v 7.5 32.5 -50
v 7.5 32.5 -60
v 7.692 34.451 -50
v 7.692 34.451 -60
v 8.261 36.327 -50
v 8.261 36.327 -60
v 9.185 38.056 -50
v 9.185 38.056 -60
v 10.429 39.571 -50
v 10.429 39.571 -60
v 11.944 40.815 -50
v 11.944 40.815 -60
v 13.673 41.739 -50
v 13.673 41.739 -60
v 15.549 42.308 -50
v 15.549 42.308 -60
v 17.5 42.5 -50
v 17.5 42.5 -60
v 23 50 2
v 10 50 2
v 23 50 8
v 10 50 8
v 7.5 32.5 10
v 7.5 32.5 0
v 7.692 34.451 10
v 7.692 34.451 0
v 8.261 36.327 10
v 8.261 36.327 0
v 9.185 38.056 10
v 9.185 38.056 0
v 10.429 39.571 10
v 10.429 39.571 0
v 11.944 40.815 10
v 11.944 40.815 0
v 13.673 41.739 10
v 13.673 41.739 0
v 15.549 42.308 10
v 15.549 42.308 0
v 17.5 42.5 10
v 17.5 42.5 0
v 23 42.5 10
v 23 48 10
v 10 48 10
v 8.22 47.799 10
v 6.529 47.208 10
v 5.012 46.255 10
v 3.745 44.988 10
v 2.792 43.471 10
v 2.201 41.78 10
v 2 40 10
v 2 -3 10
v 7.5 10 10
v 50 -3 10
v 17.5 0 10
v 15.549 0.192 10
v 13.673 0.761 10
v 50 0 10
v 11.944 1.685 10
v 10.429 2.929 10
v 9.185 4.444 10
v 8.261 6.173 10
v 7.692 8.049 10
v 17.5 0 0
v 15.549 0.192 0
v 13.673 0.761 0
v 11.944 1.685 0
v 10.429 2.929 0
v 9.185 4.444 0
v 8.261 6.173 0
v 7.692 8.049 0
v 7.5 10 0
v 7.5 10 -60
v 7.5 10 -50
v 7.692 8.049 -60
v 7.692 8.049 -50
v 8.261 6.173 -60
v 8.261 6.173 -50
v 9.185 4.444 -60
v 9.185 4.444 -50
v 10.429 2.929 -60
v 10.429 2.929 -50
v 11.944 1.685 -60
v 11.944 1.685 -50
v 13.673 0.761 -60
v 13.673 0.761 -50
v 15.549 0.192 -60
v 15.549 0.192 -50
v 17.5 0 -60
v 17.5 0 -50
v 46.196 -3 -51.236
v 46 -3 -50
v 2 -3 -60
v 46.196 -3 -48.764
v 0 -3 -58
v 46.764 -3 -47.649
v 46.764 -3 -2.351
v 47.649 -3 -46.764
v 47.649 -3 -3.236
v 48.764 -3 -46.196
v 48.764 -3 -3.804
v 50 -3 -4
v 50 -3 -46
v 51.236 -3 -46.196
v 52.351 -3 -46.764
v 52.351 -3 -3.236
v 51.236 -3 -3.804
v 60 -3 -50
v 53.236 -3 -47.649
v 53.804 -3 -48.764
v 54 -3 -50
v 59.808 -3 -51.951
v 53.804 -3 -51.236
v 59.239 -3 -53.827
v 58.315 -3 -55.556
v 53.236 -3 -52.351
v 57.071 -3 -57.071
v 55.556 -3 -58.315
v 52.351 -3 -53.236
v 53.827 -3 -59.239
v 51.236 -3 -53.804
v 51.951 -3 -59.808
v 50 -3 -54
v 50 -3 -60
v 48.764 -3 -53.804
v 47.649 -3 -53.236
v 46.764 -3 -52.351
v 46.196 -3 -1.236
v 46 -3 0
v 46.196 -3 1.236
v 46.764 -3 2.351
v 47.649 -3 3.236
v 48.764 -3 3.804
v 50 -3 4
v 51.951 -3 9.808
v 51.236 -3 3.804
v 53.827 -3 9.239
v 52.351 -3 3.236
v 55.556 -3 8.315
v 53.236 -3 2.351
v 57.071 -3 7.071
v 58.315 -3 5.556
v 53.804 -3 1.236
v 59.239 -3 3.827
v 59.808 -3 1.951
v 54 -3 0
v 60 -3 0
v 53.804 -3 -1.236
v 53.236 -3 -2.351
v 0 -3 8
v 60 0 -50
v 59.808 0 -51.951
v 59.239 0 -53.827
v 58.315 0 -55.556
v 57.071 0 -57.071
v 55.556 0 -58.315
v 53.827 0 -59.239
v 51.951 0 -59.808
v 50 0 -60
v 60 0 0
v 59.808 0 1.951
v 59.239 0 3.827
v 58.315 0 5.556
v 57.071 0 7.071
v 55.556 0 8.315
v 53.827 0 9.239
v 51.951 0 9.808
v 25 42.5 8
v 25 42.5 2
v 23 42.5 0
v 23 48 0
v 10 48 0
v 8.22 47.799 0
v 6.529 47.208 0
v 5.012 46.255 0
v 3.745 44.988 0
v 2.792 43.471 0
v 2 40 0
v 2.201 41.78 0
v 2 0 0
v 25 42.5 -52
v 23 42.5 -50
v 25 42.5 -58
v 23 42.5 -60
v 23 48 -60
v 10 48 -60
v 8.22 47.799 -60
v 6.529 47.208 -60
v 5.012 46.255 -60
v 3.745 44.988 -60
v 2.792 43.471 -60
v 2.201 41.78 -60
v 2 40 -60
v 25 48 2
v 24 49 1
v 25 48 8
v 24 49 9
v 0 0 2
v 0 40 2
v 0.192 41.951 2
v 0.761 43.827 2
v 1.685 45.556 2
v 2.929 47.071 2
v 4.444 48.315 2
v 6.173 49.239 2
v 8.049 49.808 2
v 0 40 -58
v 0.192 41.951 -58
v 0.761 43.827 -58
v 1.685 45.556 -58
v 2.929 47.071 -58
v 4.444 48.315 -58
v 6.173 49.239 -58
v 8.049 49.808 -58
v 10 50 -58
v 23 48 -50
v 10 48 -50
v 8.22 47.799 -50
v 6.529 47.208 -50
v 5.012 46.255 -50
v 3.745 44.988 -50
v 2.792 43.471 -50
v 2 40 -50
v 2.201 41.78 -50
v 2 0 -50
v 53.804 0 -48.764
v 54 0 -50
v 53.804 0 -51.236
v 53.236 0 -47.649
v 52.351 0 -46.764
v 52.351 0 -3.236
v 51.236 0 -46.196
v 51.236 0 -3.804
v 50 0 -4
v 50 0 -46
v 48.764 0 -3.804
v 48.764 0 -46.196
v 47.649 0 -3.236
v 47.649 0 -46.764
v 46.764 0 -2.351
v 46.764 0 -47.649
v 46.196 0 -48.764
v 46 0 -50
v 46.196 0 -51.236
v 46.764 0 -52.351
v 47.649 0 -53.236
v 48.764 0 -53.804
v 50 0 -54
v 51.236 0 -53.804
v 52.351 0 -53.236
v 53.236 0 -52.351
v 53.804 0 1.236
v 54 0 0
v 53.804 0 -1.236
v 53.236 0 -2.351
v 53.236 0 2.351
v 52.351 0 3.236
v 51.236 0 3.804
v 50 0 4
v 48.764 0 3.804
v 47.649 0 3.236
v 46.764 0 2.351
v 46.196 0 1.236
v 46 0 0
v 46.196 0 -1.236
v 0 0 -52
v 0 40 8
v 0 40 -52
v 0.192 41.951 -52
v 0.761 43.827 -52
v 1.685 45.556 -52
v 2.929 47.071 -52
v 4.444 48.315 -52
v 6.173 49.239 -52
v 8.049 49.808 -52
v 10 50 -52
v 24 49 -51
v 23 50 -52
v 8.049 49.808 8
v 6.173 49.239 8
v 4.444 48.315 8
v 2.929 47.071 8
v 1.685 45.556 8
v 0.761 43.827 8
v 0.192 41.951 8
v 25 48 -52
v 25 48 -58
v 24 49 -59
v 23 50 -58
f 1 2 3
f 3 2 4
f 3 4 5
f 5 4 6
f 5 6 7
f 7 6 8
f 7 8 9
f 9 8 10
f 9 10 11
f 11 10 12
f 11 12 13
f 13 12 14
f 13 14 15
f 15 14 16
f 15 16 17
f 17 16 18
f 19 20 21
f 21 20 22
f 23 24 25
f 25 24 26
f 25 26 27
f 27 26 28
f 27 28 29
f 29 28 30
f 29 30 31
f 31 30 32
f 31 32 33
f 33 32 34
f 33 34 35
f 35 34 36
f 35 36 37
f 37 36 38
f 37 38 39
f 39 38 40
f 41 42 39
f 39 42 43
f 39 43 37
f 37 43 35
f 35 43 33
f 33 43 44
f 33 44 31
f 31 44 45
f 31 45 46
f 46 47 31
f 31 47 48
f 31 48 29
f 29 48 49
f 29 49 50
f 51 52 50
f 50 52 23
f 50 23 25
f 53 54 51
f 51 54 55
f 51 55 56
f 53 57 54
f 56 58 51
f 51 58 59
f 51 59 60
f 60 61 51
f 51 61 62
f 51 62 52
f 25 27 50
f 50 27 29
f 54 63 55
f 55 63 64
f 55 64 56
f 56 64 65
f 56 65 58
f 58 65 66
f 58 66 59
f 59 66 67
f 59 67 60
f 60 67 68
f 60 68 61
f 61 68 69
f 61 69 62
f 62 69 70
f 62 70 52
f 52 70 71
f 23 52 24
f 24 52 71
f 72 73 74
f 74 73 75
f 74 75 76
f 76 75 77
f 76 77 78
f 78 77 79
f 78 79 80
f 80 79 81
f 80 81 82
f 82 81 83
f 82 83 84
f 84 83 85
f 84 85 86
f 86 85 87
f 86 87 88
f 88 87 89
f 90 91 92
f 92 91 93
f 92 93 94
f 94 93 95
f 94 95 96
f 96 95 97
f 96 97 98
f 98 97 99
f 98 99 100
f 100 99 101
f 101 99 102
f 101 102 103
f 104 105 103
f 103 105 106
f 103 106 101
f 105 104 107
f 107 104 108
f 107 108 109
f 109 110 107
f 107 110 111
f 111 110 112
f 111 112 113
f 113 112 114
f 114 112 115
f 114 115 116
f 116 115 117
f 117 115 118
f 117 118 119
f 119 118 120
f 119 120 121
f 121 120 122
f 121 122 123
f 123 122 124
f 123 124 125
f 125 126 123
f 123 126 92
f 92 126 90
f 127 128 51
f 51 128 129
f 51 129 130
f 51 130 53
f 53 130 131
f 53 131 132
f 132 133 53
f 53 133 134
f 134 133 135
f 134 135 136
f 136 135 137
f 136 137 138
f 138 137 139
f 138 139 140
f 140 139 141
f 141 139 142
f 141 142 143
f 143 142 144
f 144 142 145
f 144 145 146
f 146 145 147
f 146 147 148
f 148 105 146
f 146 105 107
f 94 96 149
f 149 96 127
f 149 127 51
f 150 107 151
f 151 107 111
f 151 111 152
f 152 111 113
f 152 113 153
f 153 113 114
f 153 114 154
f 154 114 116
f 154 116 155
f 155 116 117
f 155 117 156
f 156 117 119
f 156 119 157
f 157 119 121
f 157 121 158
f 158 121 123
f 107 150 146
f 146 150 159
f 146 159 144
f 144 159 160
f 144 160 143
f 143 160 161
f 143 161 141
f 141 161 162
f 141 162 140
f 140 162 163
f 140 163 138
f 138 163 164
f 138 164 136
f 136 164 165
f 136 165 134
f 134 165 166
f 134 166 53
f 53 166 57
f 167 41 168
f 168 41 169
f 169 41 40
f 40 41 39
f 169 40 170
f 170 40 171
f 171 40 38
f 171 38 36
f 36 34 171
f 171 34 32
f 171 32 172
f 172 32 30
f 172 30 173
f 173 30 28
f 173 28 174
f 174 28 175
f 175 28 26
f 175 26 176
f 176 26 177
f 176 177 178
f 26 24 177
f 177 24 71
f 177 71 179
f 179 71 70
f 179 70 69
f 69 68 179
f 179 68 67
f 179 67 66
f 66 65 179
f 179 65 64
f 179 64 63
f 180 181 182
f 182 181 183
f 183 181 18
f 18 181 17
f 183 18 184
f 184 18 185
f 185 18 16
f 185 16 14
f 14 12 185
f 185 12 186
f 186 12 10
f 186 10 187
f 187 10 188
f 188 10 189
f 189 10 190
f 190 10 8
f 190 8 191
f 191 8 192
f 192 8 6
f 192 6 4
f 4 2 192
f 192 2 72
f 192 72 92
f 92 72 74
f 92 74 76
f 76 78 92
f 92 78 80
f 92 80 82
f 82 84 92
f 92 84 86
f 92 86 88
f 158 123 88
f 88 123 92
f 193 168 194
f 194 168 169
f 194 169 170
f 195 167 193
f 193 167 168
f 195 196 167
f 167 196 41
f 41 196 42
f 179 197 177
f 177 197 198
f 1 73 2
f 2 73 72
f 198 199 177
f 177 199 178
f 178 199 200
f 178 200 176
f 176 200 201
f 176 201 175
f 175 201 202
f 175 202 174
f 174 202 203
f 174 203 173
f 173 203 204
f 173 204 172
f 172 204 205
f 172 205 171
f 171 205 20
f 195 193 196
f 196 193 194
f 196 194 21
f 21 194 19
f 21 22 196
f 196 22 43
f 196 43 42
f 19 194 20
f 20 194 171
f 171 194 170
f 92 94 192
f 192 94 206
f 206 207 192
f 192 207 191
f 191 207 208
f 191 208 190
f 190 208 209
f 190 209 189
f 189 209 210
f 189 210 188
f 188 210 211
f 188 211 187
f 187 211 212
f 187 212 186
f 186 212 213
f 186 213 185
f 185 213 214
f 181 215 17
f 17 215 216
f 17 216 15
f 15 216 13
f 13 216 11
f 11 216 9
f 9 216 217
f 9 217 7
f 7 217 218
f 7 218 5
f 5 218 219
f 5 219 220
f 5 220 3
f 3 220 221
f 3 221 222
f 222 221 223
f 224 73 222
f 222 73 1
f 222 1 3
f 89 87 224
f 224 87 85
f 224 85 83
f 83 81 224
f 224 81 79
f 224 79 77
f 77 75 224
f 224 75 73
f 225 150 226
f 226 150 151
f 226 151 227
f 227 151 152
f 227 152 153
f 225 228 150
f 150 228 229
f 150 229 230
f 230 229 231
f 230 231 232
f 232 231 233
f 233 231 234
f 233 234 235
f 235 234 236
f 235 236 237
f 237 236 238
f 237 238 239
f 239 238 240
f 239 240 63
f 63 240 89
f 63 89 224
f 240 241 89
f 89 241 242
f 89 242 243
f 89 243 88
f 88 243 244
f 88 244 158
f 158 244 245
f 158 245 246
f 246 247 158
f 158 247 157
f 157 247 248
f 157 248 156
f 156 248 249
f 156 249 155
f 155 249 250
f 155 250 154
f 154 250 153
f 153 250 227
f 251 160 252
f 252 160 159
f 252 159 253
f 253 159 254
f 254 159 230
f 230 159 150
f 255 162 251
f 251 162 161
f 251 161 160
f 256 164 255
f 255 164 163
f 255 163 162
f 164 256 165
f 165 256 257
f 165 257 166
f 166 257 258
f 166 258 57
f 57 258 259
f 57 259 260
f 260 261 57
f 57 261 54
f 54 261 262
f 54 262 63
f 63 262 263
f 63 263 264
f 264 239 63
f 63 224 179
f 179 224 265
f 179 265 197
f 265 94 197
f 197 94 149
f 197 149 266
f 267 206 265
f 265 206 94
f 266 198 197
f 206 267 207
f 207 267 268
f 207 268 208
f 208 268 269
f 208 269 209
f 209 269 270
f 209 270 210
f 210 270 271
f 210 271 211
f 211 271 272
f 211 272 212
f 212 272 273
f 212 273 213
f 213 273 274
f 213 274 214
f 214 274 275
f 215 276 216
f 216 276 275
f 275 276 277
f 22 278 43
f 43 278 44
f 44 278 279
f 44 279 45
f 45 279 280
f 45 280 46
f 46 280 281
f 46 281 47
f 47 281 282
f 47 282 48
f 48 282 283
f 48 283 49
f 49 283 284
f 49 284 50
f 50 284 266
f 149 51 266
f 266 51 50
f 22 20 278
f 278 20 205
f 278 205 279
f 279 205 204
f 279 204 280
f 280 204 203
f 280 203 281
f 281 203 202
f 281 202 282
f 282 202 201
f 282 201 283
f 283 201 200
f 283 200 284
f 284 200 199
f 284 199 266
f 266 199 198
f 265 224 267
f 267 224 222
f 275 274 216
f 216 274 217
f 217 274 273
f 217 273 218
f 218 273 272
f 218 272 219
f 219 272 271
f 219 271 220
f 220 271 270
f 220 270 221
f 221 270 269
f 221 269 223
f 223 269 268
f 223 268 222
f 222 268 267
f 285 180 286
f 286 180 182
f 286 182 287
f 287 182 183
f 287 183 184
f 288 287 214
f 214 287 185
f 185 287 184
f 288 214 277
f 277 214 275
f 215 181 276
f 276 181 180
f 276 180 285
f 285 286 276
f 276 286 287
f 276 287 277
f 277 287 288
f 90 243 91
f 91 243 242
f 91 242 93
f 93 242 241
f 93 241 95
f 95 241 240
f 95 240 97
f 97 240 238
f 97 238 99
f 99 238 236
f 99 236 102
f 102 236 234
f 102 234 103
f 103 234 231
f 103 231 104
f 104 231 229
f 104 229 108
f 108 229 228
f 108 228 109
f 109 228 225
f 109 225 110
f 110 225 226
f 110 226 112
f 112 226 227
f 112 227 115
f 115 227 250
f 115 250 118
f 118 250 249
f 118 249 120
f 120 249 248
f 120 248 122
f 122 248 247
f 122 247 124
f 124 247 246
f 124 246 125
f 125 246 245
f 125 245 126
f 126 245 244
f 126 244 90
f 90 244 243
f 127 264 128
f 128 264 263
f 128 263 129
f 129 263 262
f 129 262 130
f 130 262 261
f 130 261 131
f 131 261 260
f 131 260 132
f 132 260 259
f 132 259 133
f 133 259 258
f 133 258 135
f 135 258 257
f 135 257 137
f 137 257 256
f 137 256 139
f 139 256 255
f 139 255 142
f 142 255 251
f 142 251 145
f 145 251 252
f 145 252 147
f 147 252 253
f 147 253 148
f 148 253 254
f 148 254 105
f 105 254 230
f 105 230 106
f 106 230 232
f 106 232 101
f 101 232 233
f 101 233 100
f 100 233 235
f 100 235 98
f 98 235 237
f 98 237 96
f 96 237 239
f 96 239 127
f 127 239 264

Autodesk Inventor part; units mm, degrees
ref_plane "YZ Plane" through (0, 0, 0) normal (1, 0, 0) x (0, 1, 0)
ref_plane "XZ Plane" through (0, 0, 0) normal (0, 1, 0) x (-1, 0, 0)
ref_plane "XY Plane" through (0, 0, 0) normal (0, 0, 1) x (1, 0, 0)
sketch "Sketch1" plane through (0, 0, 0) normal (0, 0, 1) x (1, 0, 0)
  line L0 (0, 0) -> (0, 50)
  line L1 (0, 50) -> (25, 50)
  line L2 (25, 50) -> (25, 42.5)
  line L3 (25, 42.5) -> (7.5, 42.5)
  line L4 (7.5, 42.5) -> (7.5, 0)
  line L5 (7.5, 0) -> (0, 0)
  line L6 (0, 0) -> (-20, 0)
  line L7 (-20, 0) -> (-20, -3)
  line L8 (-20, -3) -> (60, -3)
  line L9 (60, -3) -> (60, 0)
  line L10 (60, 0) -> (7.5, 0)
  line L11 (0, 0) -> (0, -3)
  dimension "d0" = 50
  dimension "d1" = 25
  dimension "d2" = 7.5
  dimension "d3" = 17.5
  dimension "d4" = 20
  dimension "d5" = 3
  dimension "d6" = 80
extrude "Extrusion1" add sketch "Sketch1" along normal blind 10 contours L5 L10 L9 L8 L11
extrude "Extrusion2" add sketch "Sketch1" along normal blind 10 contours L0 L1 L2 L3 L4 L5
extrude "Extrusion3" add sketch "Sketch1" against normal blind 60 contours L5 L10 L9 L8 L11
extrude "Extrusion4" add sketch "Sketch1" against normal blind 60 contours L0 L1 L2 L3 L4 L5
extrude "Extrusion5" cut sketch "Sketch1" against normal blind 50 contours L0 L1 L2 L3 L4 L5
fillet "Fillet1" radius 10 5 edges at (60, -1.5, 10) (60, -1.5, -60) (7.5, 0, 5) (7.5, 42.5, 5) (7.5, 42.5, -55)
fillet "Fillet2" radius 10 2 edges at (0, 50, -55) (0, 50, 5)
chamfer "Chamfer1" distance 2 angle 45 12 edges at (0, 18.5, -60) (2.9289, 47.0711, -60) (17.5, 50, -60) (0, 18.5, 10) (2.9289, 47.0711, 10) (17.5, 50, 10) (0, 20, -50) (2.9289, 47.0711, -50) (17.5, 50, -50) (0, 20, 0) (2.9289, 47.0711, 0) (17.5, 50, 0)
chamfer "Chamfer2" distance 2 angle 45 6 edges at (25, 45.25, -60) (25, 50, -55) (25, 45.25, -50) (25, 45.25, 0) (25, 45.25, 10) (25, 50, 5)
sketch "Sketch2" plane through (17.5, 0, 10) normal (0, 1, 0) x (1, 0, 0)
  arc A0 (32.5, 0) -> (42.5, 10) centre (32.5, 10) ccw projected
  arc A1 (42.5, 60) -> (32.5, 70) centre (32.5, 60) ccw projected
  circle A2 centre (32.5, 10) radius 4
  circle A3 centre (32.5, 60) radius 4
  point P0 (-17.5, 10)
  dimension "d25" = 8
  dimension "d26" = 8
extrude "Extrusion6" cut sketch "Sketch2" against normal blind 60
properties part number "Hook"
